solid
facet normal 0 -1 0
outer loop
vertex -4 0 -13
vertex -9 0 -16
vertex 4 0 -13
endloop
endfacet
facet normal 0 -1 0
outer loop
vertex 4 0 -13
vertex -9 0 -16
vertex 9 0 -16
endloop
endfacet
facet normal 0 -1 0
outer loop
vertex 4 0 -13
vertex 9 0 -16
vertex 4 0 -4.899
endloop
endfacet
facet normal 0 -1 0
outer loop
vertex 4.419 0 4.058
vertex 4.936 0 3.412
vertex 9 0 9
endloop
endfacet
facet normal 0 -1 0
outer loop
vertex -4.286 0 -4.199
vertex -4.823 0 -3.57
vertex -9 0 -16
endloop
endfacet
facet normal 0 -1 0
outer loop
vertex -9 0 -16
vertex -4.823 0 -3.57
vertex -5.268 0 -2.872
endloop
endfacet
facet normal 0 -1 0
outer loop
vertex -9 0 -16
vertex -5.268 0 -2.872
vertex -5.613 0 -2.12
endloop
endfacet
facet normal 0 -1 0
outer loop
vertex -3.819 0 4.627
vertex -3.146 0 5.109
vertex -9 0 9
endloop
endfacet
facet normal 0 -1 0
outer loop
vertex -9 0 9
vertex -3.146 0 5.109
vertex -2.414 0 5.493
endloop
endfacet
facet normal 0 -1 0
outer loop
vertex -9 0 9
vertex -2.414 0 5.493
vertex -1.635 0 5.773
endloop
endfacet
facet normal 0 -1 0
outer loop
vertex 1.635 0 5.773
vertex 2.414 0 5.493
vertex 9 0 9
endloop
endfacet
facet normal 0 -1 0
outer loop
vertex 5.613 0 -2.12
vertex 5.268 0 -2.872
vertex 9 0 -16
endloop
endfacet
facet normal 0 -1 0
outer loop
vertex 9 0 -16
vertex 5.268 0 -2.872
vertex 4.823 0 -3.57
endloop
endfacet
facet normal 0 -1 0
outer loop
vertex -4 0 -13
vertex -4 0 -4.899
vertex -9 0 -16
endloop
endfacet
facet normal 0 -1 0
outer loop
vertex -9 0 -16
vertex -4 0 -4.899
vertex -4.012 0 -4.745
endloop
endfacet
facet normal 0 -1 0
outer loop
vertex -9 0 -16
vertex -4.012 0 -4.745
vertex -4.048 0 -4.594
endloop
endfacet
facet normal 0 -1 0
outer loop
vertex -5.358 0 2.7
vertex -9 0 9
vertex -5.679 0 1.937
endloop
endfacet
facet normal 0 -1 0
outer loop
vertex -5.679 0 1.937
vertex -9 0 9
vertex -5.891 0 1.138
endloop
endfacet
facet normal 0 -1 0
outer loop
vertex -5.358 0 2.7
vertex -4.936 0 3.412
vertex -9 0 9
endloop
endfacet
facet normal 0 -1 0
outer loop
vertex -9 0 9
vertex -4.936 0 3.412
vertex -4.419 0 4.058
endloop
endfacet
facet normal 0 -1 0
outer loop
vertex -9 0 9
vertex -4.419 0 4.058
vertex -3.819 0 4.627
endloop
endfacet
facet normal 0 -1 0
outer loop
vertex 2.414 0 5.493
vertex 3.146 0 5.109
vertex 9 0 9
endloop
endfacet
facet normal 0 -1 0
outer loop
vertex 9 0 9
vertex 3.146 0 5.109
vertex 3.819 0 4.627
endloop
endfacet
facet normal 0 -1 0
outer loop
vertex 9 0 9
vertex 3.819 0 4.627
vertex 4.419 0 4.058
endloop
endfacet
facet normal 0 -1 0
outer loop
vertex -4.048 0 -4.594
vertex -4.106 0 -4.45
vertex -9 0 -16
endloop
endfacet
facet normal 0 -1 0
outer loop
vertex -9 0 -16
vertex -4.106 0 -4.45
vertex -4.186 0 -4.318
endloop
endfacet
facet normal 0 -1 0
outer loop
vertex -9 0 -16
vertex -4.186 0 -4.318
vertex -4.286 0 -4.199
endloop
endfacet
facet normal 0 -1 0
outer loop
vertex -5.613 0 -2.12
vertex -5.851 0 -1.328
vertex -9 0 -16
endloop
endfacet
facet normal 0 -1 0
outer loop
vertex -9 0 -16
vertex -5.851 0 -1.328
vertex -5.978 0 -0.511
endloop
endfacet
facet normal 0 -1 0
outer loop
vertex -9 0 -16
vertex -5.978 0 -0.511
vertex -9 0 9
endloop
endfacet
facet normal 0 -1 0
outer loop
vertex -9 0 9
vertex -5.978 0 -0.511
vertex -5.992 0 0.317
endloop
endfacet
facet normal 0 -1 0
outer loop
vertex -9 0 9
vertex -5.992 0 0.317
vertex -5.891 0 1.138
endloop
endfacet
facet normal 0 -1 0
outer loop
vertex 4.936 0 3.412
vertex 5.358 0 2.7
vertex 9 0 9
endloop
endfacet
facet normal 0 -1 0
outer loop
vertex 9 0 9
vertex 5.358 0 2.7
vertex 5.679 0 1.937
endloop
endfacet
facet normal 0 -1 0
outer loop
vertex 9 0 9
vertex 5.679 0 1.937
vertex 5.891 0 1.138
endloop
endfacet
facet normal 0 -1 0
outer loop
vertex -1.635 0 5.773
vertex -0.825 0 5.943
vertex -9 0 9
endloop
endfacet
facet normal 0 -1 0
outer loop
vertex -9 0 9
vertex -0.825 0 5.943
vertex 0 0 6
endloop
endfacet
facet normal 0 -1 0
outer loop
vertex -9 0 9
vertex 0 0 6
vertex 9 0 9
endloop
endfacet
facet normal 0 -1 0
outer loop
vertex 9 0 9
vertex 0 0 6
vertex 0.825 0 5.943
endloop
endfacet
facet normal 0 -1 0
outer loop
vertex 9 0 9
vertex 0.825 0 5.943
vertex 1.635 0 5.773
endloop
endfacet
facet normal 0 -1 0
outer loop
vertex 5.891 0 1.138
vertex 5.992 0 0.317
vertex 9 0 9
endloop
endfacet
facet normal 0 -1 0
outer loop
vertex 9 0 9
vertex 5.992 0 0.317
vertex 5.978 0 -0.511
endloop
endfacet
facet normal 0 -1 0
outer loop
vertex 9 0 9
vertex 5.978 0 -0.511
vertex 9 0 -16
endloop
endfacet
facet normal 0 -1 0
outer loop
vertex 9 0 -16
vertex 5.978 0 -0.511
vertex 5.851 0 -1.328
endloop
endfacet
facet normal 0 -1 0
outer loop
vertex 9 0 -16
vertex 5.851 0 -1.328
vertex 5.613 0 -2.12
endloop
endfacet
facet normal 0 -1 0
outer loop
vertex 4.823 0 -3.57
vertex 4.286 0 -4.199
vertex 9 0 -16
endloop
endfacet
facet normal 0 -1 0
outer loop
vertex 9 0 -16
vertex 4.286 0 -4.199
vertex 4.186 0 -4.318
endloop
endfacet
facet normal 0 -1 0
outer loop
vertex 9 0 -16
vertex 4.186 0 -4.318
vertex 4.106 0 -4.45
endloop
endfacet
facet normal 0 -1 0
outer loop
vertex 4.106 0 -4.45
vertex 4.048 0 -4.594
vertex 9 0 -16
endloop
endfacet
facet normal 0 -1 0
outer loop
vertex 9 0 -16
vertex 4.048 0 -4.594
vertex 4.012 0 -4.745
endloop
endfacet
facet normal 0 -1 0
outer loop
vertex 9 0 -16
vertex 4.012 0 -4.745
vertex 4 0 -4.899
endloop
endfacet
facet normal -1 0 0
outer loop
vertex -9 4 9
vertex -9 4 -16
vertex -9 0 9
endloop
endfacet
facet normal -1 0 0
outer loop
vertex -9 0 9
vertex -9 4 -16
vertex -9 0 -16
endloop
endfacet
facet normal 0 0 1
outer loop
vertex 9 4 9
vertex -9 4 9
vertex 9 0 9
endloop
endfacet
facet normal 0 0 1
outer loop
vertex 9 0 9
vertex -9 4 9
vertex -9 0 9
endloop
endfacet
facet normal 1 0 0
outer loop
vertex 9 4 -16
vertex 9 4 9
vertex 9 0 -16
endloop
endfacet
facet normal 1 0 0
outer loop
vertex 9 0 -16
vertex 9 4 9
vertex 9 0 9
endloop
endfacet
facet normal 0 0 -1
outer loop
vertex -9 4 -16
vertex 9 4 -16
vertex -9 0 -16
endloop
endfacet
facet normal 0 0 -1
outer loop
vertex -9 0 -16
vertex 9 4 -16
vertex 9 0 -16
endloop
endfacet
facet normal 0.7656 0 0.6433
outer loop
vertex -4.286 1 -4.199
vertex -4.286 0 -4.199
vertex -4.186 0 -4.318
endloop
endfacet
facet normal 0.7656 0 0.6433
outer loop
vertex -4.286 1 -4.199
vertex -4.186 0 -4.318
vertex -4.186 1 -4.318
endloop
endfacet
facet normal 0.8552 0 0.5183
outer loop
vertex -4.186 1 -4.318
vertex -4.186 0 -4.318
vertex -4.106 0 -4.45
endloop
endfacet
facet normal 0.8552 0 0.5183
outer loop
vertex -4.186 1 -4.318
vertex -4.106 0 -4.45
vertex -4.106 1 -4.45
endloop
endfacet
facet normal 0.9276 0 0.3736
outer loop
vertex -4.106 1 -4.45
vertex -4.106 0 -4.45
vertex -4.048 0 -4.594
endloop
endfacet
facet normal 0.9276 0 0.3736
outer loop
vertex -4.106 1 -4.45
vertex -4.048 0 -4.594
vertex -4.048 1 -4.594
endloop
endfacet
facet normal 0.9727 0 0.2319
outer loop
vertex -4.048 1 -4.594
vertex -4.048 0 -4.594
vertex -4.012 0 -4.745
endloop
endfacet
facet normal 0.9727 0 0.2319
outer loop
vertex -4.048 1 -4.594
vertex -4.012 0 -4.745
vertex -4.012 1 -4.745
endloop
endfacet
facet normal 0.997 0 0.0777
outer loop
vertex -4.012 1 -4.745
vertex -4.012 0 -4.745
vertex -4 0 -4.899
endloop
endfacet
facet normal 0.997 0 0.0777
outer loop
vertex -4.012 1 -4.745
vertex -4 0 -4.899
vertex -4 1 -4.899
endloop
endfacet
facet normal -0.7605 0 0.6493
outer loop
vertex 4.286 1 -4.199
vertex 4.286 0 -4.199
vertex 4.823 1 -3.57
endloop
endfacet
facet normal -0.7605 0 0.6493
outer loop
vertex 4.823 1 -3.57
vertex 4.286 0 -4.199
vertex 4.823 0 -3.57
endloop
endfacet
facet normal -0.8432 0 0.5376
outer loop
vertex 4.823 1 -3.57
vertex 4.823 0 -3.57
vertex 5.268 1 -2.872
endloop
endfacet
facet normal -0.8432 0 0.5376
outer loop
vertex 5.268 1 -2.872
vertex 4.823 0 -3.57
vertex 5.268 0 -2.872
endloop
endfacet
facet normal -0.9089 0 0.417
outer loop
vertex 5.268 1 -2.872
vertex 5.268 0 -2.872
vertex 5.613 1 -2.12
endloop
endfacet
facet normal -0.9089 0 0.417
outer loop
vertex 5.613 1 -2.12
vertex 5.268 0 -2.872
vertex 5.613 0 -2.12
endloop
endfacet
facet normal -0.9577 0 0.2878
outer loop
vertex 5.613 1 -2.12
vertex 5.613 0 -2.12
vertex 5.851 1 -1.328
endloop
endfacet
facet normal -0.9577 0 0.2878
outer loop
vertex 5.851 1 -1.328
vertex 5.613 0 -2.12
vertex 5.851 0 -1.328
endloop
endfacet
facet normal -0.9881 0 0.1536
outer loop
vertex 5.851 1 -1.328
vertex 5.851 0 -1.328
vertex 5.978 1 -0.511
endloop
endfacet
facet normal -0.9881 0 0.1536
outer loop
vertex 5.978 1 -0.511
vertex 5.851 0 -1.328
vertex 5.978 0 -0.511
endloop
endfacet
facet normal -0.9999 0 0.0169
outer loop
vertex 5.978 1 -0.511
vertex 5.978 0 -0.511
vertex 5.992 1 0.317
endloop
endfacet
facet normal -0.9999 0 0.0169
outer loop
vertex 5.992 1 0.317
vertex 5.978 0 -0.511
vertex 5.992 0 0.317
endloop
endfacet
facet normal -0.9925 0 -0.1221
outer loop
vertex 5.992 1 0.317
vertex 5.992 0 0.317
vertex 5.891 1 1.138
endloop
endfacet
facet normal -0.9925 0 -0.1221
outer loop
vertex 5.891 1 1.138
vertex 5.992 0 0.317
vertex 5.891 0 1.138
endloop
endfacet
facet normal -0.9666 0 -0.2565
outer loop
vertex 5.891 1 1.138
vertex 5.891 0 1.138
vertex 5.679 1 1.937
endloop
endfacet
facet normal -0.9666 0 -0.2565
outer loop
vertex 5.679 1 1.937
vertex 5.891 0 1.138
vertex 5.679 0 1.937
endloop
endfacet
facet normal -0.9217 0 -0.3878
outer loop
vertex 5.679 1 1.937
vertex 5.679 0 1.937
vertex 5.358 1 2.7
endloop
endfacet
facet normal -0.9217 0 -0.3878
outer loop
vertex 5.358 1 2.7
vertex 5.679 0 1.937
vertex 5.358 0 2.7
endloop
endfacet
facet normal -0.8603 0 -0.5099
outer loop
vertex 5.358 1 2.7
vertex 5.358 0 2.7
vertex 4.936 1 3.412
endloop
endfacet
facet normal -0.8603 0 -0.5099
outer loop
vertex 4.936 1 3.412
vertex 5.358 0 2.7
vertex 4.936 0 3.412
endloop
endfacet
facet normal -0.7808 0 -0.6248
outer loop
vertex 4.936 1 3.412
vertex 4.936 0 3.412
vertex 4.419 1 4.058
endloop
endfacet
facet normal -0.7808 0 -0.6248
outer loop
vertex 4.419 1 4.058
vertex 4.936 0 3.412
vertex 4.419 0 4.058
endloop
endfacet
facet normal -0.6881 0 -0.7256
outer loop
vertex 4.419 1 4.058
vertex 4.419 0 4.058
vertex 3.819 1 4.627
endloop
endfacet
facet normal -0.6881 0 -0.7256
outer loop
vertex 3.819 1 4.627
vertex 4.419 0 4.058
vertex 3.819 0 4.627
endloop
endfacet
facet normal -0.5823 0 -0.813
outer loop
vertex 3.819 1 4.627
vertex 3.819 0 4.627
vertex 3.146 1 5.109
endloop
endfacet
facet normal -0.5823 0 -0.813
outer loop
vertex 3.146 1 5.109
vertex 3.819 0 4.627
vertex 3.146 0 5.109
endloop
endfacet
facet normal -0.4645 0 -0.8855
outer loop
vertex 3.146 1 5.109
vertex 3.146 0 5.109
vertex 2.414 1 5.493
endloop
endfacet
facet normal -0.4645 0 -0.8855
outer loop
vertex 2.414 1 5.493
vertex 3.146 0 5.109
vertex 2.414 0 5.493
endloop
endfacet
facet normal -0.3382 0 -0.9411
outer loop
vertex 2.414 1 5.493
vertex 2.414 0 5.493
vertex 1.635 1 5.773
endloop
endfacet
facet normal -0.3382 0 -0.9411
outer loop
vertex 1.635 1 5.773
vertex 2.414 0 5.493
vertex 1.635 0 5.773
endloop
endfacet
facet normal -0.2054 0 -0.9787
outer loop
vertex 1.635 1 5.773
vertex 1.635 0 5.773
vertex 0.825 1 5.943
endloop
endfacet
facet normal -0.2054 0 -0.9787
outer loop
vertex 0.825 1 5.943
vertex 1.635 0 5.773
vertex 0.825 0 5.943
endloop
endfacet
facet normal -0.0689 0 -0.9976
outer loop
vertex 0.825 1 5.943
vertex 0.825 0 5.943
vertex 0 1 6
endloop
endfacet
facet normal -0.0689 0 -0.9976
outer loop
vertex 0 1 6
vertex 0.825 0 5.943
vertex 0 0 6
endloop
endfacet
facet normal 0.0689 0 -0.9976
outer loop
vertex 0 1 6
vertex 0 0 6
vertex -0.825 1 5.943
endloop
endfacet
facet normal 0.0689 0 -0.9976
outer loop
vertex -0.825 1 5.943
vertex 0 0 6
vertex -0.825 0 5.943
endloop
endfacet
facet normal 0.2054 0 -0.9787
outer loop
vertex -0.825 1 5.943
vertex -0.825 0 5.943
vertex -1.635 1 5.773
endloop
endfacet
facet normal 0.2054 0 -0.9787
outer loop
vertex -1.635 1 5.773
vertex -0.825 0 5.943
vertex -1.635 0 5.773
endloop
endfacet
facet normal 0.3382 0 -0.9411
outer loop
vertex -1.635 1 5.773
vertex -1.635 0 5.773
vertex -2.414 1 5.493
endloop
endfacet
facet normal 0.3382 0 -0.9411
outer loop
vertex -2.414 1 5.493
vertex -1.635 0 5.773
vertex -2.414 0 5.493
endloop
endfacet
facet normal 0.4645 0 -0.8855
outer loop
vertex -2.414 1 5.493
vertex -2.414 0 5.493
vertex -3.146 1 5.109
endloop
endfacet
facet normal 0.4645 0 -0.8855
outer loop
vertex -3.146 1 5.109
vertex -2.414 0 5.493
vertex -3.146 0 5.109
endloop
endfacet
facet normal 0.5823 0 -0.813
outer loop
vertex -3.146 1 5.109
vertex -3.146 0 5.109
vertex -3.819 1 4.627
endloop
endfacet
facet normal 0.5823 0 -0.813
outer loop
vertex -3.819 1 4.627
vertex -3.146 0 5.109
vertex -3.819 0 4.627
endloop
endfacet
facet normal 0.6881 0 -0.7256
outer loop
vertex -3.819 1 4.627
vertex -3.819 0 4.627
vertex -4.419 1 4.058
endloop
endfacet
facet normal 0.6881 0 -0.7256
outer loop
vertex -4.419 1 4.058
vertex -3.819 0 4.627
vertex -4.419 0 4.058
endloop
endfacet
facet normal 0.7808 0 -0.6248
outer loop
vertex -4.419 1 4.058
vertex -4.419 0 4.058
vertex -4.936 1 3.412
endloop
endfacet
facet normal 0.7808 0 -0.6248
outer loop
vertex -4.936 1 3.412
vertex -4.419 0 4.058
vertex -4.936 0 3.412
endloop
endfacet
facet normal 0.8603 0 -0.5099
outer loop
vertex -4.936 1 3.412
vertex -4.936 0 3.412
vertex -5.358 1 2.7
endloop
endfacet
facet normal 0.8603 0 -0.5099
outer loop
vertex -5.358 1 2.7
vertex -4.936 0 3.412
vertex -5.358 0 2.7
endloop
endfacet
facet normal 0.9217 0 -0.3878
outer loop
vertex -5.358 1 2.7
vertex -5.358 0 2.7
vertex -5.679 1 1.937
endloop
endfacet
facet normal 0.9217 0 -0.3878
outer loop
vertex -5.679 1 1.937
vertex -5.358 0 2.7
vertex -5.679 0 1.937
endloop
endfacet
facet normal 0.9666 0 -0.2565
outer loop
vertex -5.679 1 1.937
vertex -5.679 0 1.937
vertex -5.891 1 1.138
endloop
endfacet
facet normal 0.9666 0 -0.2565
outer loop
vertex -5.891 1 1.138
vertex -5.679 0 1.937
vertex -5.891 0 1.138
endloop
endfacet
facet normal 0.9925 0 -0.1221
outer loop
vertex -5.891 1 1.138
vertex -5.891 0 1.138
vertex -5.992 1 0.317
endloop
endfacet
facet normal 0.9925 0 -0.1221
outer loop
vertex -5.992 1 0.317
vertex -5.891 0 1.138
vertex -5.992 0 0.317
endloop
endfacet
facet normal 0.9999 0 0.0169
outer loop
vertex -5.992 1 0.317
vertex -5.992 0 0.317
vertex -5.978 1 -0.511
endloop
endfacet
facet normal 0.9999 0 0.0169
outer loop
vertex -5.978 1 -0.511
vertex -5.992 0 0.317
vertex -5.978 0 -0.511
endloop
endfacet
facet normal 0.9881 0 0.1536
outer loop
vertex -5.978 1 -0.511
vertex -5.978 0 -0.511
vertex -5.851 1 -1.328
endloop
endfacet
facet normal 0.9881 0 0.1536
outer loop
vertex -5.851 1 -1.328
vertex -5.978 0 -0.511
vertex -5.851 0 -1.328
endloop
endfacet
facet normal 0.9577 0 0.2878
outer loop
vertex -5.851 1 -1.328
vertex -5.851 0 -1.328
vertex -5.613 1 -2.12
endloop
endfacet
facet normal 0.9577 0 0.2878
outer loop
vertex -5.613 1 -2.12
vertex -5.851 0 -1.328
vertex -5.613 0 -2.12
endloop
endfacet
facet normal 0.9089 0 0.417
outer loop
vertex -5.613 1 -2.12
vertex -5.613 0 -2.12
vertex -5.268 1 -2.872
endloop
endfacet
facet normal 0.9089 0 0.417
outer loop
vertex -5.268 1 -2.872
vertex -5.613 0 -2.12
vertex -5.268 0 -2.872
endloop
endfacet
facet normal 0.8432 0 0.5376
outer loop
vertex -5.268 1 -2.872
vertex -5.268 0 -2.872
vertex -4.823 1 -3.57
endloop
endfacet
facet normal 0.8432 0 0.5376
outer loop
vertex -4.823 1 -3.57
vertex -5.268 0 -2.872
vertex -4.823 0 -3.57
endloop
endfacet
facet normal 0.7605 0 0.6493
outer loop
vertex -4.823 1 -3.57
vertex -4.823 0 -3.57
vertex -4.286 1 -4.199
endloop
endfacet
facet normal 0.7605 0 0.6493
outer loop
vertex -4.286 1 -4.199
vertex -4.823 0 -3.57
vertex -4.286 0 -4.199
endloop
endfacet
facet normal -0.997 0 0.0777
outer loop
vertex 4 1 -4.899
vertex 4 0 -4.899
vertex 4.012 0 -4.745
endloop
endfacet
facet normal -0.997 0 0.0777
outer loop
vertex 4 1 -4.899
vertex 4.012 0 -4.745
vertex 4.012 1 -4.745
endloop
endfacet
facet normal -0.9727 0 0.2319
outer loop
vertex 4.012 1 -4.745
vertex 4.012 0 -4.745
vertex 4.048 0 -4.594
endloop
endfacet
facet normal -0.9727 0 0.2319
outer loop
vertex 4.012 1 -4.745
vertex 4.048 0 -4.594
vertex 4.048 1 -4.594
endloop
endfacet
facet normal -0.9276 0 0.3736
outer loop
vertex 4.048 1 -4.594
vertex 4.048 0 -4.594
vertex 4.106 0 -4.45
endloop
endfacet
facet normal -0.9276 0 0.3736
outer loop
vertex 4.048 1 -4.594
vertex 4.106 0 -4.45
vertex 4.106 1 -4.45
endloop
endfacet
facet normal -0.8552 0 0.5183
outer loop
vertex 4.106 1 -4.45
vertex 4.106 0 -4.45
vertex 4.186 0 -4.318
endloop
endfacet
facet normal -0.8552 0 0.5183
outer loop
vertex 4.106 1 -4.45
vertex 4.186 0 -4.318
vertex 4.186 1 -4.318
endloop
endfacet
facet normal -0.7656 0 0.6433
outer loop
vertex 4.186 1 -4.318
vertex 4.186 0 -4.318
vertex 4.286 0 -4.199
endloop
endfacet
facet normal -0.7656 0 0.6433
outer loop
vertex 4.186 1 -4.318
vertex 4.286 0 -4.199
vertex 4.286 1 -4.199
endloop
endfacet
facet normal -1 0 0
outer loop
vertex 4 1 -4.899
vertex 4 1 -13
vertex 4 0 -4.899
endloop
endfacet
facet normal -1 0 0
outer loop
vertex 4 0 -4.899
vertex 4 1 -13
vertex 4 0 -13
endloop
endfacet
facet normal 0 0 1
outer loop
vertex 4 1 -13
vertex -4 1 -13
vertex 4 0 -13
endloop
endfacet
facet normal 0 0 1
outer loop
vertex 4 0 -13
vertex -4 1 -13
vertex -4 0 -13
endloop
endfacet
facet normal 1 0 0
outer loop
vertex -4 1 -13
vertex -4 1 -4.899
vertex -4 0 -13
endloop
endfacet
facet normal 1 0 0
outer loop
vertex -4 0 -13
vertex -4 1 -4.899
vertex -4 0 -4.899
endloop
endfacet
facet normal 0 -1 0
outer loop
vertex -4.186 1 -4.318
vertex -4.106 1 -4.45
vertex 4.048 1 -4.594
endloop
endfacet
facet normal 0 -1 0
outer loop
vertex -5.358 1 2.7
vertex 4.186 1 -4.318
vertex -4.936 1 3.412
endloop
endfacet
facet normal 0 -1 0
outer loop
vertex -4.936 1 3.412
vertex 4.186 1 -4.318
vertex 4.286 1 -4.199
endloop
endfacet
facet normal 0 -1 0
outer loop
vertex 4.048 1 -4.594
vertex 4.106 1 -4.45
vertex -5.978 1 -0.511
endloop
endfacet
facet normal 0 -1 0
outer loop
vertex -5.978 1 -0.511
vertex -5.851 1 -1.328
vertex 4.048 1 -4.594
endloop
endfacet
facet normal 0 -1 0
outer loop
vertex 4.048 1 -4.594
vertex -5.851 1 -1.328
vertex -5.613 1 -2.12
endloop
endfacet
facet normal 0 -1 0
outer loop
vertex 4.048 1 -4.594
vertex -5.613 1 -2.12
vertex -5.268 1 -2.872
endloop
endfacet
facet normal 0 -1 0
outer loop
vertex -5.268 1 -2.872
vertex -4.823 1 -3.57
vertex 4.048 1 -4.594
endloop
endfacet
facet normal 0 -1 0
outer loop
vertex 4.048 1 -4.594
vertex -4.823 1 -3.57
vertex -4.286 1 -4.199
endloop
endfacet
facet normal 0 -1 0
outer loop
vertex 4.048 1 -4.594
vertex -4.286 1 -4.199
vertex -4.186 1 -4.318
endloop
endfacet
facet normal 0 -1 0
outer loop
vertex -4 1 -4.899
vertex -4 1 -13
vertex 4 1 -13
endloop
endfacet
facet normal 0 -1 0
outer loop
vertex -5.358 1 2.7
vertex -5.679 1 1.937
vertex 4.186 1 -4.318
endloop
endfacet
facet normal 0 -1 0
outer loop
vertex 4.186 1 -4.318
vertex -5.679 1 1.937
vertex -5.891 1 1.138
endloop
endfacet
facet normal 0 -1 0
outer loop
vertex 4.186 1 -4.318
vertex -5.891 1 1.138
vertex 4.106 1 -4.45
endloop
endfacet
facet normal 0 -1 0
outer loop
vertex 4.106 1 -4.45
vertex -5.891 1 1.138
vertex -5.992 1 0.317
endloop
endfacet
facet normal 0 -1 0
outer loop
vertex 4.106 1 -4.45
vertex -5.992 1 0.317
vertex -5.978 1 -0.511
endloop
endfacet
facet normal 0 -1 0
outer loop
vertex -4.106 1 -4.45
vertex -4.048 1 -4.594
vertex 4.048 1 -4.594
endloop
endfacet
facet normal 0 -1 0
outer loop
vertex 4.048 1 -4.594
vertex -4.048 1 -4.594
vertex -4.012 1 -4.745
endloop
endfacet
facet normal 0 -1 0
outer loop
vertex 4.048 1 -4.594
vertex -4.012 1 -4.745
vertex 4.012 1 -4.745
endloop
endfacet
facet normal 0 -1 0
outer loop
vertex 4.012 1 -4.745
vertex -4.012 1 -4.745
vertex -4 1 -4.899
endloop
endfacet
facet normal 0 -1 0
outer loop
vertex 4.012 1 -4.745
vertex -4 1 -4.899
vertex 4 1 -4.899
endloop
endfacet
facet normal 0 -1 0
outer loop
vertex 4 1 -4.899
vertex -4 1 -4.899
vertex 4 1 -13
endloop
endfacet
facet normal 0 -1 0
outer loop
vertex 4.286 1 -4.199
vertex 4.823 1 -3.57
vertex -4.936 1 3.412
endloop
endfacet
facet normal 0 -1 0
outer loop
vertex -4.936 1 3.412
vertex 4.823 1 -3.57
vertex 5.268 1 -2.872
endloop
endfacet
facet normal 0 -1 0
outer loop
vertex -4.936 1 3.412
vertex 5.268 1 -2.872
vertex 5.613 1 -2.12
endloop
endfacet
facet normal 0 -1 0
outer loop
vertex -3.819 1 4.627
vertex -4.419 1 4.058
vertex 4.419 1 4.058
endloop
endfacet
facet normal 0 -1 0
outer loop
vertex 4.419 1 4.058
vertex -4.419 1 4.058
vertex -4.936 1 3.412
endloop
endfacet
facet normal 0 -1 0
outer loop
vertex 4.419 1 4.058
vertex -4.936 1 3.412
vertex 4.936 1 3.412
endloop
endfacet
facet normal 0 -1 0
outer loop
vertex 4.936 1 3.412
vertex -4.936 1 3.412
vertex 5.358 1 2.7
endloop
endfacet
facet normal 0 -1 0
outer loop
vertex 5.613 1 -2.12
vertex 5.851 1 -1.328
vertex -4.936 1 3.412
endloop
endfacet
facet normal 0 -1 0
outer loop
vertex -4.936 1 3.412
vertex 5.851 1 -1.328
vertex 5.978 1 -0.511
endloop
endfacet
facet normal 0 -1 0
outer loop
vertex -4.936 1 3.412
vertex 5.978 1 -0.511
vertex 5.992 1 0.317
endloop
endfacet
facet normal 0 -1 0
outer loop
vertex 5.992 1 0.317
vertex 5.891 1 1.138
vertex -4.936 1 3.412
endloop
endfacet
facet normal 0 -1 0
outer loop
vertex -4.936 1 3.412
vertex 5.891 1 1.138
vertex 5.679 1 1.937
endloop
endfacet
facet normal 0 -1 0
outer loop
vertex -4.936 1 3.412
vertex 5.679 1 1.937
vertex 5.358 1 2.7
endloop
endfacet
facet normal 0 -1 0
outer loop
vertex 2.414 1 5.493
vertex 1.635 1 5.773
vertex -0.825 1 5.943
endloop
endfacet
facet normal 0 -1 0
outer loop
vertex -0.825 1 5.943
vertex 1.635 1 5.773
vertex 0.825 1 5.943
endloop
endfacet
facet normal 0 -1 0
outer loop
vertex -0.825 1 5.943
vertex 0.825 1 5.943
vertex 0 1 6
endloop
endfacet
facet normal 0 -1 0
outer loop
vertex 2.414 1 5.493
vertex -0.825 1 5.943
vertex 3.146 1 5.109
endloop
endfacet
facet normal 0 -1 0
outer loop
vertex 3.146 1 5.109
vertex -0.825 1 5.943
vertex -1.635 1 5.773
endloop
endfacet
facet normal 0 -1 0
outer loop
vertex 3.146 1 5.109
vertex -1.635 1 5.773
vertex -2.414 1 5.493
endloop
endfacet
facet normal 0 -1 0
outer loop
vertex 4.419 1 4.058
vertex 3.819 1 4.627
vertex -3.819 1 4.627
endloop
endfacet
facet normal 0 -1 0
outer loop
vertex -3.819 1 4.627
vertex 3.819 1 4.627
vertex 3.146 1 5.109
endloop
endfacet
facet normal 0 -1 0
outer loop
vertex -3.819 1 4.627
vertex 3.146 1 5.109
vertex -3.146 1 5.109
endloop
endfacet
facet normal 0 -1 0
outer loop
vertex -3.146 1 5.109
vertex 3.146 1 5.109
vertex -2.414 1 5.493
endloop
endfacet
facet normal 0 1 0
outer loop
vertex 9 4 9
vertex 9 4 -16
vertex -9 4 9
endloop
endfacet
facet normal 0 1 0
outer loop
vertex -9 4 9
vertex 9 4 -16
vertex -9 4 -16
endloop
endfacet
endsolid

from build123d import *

# Parameters (mm, degrees)
SKETCH1_W           = 18
SKETCH1_H           = 25
BOSS_EXTRUDE1_DEPTH = 1
SKETCH2_W           = 18
SKETCH2_H           = 25
BOSS_EXTRUDE2_DEPTH = 3


with BuildPart() as part:
    # Sketch1 → Boss-Extrude1 (new body)
    with BuildSketch(Plane(origin=(0, 0, 0), x_dir=(1, 0, 0), z_dir=(0, 1, 0))):
        with Locations((0, 3.5)):
            Rectangle(SKETCH1_W, SKETCH1_H)
        with BuildLine():
            Line((-4, 13), (4, 13))
            Line((4, 13), (4, 5.5))
            Line((4, 5.5), (4, 4.898979486))
            ThreePointArc((4, 4.898979486), (4.0741799, 4.521015013), (4.285714286, 4.199125273))
            ThreePointArc((4.285714286, 4.199125273), (0, -6), (-4.285714286, 4.199125273))
            ThreePointArc((-4.285714286, 4.199125273), (-4.0741799, 4.521015013), (-4, 4.898979486))
            Line((-4, 4.898979486), (-4, 5.5))
            Line((-4, 5.5), (-4, 13))
        make_face(mode=Mode.SUBTRACT)
    extrude(amount=BOSS_EXTRUDE1_DEPTH)

    # Sketch2 → Boss-Extrude2 (add)
    with BuildSketch(Plane(origin=(0, 1, 0), x_dir=(1, 0, 0), z_dir=(0, 1, 0))):
        with Locations((0, 3.5)):
            Rectangle(SKETCH2_W, SKETCH2_H)
    extrude(amount=BOSS_EXTRUDE2_DEPTH)


solid = part.part
